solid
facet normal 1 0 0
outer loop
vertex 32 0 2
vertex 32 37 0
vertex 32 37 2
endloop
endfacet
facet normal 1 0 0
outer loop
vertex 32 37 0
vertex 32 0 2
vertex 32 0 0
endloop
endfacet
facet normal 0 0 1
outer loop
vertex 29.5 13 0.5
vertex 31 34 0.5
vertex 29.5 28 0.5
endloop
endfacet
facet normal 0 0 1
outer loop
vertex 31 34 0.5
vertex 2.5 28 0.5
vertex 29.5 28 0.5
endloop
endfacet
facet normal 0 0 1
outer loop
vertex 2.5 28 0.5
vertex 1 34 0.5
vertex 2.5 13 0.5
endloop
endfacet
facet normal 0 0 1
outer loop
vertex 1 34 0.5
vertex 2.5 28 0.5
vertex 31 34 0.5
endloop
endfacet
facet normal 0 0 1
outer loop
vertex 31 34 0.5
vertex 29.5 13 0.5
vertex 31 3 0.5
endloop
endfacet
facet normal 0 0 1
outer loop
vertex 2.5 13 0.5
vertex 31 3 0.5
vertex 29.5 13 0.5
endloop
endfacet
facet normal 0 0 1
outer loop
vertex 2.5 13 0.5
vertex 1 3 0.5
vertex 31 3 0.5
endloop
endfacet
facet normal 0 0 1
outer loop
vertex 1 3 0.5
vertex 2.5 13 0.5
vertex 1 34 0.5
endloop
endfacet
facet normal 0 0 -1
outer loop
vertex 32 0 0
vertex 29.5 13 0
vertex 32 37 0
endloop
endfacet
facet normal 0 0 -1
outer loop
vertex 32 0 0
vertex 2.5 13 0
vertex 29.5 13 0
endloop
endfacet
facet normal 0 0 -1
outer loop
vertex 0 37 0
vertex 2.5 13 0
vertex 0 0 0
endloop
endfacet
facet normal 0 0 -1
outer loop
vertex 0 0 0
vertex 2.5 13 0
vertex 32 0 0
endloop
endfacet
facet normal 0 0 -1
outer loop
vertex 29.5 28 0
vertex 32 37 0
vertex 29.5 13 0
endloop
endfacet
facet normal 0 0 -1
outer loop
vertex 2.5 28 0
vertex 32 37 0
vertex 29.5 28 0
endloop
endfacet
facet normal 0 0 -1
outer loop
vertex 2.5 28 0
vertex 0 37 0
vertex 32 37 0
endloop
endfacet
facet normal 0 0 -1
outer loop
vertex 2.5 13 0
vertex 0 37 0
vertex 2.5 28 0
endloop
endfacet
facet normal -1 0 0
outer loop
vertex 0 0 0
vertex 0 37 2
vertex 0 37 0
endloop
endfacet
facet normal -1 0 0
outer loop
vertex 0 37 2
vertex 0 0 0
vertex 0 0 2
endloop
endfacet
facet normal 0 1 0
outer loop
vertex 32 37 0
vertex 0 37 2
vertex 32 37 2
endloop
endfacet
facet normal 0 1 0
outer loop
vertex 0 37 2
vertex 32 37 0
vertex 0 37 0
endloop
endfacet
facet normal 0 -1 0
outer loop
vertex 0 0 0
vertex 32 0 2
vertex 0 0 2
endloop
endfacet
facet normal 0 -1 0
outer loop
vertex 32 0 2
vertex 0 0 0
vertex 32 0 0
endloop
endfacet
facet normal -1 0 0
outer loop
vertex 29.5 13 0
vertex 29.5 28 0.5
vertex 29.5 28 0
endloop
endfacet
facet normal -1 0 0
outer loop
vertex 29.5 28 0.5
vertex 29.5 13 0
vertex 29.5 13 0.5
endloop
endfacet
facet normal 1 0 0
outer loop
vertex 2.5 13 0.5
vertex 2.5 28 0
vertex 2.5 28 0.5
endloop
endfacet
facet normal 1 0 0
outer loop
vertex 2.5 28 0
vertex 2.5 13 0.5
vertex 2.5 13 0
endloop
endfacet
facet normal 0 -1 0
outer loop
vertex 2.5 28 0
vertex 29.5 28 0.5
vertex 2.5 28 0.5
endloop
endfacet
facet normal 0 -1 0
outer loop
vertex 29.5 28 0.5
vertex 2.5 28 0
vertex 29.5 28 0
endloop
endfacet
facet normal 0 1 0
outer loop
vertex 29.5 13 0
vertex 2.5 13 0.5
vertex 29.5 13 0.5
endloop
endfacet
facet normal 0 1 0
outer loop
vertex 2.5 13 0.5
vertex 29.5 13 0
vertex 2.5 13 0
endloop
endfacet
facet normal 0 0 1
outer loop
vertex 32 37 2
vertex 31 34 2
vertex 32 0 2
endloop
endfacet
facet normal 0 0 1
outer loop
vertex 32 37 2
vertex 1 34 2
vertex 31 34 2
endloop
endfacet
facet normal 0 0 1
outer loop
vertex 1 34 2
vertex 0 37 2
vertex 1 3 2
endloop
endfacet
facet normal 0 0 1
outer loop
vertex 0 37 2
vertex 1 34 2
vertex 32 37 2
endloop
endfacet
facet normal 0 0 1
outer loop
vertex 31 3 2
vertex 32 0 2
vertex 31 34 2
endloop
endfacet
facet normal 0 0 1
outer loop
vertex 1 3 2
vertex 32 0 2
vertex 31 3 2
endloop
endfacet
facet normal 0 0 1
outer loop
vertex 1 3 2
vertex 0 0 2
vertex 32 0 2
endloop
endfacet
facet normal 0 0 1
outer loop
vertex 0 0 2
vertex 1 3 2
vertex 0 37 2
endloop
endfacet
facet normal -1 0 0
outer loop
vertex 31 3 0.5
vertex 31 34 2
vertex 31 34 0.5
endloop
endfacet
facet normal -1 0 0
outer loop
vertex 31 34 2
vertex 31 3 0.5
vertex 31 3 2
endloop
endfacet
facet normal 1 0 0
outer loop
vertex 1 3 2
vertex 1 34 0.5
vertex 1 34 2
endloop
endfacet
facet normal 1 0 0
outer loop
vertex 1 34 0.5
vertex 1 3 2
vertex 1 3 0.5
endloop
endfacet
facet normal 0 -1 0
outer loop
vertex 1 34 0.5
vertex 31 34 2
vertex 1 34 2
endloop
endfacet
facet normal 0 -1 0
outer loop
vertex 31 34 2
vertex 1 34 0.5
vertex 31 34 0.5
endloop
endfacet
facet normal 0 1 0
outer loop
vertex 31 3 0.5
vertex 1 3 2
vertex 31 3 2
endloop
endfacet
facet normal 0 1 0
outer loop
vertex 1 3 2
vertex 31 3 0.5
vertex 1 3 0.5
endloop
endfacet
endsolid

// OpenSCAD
case_aperture_width=30.0;
case_aperture_length=31.0;

side_border_width=1.0;
top_border_width=3.0;
bottom_border_width=3.0;

frame_width=side_border_width + case_aperture_width + side_border_width;
frame_length=top_border_width + case_aperture_length + bottom_border_width;

screen_width=27.0;
screen_length=15.0;

screen_hole_xpos=(frame_width-screen_width)/2;
screen_hole_ypos=bottom_border_width + 10.0;

frame_height=0.5;

difference()
{
  cube([frame_width, frame_length, frame_height]);

  // Knock out the screen hole
  //
  translate([screen_hole_xpos, screen_hole_ypos, 0])
  {
    cube([screen_width, screen_length, frame_height]);
  }
}

translate([0, 0, frame_height])
{
  frame_raise=1.5;
  difference()
  {
    cube([frame_width, frame_length, frame_raise]);
    
    translate([side_border_width, bottom_border_width, 0])
    {
      #cube([frame_width-(side_border_width*2),
            frame_length-bottom_border_width-top_border_width,
            frame_raise]);
    }
  }
}
